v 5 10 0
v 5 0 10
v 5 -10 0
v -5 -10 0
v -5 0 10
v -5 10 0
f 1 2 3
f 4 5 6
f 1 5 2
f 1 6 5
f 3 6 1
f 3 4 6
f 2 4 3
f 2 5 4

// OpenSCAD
rotate(a=[0,-90,0])
    {
    linear_extrude(height = 10, center=true)
        {    
        polygon(points=[[0,10],[10,0],[0,-10],[0,10]]);
        }
    }
